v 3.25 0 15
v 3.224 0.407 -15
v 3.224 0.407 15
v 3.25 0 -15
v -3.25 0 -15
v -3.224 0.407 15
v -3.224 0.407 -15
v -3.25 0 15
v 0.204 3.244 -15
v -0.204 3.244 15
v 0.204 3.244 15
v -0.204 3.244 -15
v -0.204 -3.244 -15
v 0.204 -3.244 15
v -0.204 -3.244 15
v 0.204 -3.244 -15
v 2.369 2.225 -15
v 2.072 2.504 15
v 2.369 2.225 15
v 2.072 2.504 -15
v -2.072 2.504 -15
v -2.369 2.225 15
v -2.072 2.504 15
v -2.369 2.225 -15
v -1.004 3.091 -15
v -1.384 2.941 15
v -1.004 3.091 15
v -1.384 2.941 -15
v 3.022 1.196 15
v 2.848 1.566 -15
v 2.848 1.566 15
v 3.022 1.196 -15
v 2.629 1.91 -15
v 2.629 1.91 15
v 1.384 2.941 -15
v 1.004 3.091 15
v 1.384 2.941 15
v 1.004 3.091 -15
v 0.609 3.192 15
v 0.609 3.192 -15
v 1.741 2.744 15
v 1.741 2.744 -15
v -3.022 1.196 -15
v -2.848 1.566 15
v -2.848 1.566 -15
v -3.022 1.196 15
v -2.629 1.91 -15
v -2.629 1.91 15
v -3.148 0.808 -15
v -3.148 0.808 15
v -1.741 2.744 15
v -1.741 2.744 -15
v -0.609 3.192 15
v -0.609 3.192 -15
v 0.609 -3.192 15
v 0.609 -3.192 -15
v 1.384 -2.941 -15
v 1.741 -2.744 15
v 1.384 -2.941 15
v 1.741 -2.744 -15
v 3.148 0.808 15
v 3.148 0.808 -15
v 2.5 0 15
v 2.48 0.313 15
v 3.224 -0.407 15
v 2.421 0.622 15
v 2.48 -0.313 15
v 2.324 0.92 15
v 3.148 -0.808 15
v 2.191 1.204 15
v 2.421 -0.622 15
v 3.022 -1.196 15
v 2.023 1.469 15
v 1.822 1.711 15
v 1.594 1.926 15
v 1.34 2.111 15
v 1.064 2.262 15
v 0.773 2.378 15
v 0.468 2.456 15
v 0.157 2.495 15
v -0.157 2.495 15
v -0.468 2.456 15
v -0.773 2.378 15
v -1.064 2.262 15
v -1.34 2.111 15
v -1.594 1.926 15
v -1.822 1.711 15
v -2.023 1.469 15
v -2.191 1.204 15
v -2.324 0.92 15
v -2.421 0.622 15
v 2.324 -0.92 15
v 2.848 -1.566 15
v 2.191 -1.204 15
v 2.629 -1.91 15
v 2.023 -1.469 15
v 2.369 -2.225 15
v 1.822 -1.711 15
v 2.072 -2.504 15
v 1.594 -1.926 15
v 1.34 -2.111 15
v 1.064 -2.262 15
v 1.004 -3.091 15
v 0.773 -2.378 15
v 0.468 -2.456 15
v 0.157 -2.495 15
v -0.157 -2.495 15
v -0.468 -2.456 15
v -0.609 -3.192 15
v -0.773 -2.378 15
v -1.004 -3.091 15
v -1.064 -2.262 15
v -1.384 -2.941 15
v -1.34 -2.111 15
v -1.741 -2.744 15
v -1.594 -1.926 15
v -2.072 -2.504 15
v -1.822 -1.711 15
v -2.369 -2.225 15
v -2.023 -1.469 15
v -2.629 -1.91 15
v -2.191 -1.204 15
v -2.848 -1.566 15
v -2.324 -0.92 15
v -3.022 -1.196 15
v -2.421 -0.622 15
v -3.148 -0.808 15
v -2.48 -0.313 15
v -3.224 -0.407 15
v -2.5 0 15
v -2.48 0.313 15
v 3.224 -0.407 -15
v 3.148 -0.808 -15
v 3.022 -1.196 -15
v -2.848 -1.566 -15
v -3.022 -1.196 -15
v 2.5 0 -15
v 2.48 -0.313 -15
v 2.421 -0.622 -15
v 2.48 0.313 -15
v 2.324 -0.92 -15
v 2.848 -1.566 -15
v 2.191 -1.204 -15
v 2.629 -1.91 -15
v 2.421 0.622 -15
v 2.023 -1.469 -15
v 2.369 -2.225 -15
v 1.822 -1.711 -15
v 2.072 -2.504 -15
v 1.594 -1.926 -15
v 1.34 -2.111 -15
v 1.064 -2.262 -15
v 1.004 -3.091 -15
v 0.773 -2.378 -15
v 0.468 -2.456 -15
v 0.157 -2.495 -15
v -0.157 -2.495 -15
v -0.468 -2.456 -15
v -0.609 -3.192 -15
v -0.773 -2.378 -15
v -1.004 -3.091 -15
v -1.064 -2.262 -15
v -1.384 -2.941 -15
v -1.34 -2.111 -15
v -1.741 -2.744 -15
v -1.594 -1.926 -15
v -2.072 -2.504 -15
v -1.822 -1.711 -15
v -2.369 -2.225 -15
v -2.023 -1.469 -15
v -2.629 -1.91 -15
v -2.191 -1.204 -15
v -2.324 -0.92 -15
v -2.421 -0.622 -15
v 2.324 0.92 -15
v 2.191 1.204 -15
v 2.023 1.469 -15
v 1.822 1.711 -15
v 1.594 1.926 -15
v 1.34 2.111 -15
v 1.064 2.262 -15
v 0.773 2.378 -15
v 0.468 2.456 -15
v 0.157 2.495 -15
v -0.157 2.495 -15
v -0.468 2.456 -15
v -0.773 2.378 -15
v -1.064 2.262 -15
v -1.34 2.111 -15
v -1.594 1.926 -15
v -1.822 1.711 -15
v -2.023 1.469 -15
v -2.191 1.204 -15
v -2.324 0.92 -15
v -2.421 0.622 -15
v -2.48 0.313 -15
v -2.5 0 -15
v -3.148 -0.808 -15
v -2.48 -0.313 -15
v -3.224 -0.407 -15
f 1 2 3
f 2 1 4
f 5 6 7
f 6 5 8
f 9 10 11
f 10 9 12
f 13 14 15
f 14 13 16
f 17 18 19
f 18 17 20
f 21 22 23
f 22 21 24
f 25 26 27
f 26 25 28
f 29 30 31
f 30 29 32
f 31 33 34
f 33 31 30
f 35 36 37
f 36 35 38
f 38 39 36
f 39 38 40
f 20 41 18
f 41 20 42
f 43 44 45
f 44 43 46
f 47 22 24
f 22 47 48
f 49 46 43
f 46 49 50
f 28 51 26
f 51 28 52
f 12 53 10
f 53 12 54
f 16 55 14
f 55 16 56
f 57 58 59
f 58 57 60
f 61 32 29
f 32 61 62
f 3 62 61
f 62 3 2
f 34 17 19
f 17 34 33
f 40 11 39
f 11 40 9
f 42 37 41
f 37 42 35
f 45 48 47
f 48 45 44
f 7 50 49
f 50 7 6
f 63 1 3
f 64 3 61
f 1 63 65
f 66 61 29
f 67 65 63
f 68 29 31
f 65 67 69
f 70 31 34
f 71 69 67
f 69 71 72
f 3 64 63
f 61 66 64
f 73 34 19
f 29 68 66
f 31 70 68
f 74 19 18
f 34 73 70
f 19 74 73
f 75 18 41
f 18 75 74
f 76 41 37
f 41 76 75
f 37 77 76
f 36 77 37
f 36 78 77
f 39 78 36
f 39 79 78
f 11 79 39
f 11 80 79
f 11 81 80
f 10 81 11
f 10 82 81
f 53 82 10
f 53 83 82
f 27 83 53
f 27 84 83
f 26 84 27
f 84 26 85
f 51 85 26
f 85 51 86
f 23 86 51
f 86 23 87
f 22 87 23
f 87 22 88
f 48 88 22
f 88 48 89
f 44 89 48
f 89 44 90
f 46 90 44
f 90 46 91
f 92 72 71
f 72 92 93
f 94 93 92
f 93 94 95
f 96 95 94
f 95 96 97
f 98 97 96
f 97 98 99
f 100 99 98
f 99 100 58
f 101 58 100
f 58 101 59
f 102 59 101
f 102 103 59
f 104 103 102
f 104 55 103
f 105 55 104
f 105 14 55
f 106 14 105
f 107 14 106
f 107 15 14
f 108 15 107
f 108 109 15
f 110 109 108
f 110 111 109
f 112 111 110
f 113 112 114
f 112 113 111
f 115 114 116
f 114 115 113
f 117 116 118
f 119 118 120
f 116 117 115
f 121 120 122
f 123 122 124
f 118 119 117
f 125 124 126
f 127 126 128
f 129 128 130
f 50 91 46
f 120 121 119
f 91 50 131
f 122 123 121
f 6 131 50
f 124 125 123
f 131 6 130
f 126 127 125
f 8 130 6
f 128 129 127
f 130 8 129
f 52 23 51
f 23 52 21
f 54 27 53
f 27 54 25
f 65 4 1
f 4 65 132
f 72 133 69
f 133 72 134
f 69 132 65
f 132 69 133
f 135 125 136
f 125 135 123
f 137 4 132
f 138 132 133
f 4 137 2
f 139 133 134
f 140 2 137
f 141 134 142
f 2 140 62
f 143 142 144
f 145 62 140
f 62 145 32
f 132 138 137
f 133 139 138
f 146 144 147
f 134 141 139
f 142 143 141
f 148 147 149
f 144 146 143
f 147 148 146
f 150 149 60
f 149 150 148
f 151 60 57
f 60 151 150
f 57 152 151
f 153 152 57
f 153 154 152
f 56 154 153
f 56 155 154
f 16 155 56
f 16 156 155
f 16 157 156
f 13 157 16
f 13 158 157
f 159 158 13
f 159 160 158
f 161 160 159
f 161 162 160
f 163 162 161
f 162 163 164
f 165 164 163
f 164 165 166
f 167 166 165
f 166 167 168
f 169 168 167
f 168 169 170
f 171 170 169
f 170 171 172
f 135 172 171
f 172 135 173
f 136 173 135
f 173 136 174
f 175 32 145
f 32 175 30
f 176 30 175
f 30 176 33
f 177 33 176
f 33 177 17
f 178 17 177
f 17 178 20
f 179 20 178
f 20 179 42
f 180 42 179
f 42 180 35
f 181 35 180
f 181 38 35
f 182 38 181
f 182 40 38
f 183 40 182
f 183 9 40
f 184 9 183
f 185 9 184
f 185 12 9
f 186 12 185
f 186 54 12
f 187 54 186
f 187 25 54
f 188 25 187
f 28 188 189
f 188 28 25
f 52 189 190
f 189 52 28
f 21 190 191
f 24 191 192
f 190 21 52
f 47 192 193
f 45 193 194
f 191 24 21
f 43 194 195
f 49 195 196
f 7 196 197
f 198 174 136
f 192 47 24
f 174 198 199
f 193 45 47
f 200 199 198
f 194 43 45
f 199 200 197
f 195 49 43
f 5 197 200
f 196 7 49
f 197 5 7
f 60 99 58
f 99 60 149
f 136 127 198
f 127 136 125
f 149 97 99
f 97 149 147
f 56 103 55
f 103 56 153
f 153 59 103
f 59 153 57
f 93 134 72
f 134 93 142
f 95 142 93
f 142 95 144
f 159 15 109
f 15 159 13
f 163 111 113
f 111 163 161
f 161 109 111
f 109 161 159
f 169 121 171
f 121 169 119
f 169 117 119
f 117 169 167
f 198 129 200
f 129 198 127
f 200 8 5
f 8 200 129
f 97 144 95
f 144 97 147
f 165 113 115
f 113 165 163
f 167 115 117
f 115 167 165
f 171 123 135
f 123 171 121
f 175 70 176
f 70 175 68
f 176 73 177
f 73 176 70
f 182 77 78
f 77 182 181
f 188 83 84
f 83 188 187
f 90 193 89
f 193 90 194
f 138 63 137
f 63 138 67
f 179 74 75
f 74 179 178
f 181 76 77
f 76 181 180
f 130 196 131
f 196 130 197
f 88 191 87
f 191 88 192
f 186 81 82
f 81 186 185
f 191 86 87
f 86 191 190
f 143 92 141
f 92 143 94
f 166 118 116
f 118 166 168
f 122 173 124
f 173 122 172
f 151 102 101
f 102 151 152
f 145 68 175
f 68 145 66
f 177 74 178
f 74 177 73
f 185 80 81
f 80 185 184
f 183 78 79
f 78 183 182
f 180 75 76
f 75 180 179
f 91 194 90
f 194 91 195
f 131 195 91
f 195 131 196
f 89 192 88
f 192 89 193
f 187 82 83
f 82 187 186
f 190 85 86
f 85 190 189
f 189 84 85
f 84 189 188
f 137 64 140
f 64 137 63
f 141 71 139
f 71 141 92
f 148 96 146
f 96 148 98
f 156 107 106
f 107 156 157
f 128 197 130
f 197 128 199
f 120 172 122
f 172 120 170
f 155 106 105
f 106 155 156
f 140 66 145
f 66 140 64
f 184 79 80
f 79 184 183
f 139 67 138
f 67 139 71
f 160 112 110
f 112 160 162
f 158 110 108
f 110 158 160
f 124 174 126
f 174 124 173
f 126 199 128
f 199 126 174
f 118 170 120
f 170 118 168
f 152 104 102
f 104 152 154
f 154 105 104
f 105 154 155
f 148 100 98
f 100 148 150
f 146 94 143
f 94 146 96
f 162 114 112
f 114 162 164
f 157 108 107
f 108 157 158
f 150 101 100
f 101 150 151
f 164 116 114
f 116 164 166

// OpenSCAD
$fn = 50;


difference() {
	union() {
		translate(v = [0, 0, -15.0000000000]) {
			cylinder(h = 30, r = 3.2500000000);
		}
	}
	union() {
		translate(v = [0, 0, -100.0000000000]) {
			cylinder(h = 200, r = 2.5000000000);
		}
	}
}
